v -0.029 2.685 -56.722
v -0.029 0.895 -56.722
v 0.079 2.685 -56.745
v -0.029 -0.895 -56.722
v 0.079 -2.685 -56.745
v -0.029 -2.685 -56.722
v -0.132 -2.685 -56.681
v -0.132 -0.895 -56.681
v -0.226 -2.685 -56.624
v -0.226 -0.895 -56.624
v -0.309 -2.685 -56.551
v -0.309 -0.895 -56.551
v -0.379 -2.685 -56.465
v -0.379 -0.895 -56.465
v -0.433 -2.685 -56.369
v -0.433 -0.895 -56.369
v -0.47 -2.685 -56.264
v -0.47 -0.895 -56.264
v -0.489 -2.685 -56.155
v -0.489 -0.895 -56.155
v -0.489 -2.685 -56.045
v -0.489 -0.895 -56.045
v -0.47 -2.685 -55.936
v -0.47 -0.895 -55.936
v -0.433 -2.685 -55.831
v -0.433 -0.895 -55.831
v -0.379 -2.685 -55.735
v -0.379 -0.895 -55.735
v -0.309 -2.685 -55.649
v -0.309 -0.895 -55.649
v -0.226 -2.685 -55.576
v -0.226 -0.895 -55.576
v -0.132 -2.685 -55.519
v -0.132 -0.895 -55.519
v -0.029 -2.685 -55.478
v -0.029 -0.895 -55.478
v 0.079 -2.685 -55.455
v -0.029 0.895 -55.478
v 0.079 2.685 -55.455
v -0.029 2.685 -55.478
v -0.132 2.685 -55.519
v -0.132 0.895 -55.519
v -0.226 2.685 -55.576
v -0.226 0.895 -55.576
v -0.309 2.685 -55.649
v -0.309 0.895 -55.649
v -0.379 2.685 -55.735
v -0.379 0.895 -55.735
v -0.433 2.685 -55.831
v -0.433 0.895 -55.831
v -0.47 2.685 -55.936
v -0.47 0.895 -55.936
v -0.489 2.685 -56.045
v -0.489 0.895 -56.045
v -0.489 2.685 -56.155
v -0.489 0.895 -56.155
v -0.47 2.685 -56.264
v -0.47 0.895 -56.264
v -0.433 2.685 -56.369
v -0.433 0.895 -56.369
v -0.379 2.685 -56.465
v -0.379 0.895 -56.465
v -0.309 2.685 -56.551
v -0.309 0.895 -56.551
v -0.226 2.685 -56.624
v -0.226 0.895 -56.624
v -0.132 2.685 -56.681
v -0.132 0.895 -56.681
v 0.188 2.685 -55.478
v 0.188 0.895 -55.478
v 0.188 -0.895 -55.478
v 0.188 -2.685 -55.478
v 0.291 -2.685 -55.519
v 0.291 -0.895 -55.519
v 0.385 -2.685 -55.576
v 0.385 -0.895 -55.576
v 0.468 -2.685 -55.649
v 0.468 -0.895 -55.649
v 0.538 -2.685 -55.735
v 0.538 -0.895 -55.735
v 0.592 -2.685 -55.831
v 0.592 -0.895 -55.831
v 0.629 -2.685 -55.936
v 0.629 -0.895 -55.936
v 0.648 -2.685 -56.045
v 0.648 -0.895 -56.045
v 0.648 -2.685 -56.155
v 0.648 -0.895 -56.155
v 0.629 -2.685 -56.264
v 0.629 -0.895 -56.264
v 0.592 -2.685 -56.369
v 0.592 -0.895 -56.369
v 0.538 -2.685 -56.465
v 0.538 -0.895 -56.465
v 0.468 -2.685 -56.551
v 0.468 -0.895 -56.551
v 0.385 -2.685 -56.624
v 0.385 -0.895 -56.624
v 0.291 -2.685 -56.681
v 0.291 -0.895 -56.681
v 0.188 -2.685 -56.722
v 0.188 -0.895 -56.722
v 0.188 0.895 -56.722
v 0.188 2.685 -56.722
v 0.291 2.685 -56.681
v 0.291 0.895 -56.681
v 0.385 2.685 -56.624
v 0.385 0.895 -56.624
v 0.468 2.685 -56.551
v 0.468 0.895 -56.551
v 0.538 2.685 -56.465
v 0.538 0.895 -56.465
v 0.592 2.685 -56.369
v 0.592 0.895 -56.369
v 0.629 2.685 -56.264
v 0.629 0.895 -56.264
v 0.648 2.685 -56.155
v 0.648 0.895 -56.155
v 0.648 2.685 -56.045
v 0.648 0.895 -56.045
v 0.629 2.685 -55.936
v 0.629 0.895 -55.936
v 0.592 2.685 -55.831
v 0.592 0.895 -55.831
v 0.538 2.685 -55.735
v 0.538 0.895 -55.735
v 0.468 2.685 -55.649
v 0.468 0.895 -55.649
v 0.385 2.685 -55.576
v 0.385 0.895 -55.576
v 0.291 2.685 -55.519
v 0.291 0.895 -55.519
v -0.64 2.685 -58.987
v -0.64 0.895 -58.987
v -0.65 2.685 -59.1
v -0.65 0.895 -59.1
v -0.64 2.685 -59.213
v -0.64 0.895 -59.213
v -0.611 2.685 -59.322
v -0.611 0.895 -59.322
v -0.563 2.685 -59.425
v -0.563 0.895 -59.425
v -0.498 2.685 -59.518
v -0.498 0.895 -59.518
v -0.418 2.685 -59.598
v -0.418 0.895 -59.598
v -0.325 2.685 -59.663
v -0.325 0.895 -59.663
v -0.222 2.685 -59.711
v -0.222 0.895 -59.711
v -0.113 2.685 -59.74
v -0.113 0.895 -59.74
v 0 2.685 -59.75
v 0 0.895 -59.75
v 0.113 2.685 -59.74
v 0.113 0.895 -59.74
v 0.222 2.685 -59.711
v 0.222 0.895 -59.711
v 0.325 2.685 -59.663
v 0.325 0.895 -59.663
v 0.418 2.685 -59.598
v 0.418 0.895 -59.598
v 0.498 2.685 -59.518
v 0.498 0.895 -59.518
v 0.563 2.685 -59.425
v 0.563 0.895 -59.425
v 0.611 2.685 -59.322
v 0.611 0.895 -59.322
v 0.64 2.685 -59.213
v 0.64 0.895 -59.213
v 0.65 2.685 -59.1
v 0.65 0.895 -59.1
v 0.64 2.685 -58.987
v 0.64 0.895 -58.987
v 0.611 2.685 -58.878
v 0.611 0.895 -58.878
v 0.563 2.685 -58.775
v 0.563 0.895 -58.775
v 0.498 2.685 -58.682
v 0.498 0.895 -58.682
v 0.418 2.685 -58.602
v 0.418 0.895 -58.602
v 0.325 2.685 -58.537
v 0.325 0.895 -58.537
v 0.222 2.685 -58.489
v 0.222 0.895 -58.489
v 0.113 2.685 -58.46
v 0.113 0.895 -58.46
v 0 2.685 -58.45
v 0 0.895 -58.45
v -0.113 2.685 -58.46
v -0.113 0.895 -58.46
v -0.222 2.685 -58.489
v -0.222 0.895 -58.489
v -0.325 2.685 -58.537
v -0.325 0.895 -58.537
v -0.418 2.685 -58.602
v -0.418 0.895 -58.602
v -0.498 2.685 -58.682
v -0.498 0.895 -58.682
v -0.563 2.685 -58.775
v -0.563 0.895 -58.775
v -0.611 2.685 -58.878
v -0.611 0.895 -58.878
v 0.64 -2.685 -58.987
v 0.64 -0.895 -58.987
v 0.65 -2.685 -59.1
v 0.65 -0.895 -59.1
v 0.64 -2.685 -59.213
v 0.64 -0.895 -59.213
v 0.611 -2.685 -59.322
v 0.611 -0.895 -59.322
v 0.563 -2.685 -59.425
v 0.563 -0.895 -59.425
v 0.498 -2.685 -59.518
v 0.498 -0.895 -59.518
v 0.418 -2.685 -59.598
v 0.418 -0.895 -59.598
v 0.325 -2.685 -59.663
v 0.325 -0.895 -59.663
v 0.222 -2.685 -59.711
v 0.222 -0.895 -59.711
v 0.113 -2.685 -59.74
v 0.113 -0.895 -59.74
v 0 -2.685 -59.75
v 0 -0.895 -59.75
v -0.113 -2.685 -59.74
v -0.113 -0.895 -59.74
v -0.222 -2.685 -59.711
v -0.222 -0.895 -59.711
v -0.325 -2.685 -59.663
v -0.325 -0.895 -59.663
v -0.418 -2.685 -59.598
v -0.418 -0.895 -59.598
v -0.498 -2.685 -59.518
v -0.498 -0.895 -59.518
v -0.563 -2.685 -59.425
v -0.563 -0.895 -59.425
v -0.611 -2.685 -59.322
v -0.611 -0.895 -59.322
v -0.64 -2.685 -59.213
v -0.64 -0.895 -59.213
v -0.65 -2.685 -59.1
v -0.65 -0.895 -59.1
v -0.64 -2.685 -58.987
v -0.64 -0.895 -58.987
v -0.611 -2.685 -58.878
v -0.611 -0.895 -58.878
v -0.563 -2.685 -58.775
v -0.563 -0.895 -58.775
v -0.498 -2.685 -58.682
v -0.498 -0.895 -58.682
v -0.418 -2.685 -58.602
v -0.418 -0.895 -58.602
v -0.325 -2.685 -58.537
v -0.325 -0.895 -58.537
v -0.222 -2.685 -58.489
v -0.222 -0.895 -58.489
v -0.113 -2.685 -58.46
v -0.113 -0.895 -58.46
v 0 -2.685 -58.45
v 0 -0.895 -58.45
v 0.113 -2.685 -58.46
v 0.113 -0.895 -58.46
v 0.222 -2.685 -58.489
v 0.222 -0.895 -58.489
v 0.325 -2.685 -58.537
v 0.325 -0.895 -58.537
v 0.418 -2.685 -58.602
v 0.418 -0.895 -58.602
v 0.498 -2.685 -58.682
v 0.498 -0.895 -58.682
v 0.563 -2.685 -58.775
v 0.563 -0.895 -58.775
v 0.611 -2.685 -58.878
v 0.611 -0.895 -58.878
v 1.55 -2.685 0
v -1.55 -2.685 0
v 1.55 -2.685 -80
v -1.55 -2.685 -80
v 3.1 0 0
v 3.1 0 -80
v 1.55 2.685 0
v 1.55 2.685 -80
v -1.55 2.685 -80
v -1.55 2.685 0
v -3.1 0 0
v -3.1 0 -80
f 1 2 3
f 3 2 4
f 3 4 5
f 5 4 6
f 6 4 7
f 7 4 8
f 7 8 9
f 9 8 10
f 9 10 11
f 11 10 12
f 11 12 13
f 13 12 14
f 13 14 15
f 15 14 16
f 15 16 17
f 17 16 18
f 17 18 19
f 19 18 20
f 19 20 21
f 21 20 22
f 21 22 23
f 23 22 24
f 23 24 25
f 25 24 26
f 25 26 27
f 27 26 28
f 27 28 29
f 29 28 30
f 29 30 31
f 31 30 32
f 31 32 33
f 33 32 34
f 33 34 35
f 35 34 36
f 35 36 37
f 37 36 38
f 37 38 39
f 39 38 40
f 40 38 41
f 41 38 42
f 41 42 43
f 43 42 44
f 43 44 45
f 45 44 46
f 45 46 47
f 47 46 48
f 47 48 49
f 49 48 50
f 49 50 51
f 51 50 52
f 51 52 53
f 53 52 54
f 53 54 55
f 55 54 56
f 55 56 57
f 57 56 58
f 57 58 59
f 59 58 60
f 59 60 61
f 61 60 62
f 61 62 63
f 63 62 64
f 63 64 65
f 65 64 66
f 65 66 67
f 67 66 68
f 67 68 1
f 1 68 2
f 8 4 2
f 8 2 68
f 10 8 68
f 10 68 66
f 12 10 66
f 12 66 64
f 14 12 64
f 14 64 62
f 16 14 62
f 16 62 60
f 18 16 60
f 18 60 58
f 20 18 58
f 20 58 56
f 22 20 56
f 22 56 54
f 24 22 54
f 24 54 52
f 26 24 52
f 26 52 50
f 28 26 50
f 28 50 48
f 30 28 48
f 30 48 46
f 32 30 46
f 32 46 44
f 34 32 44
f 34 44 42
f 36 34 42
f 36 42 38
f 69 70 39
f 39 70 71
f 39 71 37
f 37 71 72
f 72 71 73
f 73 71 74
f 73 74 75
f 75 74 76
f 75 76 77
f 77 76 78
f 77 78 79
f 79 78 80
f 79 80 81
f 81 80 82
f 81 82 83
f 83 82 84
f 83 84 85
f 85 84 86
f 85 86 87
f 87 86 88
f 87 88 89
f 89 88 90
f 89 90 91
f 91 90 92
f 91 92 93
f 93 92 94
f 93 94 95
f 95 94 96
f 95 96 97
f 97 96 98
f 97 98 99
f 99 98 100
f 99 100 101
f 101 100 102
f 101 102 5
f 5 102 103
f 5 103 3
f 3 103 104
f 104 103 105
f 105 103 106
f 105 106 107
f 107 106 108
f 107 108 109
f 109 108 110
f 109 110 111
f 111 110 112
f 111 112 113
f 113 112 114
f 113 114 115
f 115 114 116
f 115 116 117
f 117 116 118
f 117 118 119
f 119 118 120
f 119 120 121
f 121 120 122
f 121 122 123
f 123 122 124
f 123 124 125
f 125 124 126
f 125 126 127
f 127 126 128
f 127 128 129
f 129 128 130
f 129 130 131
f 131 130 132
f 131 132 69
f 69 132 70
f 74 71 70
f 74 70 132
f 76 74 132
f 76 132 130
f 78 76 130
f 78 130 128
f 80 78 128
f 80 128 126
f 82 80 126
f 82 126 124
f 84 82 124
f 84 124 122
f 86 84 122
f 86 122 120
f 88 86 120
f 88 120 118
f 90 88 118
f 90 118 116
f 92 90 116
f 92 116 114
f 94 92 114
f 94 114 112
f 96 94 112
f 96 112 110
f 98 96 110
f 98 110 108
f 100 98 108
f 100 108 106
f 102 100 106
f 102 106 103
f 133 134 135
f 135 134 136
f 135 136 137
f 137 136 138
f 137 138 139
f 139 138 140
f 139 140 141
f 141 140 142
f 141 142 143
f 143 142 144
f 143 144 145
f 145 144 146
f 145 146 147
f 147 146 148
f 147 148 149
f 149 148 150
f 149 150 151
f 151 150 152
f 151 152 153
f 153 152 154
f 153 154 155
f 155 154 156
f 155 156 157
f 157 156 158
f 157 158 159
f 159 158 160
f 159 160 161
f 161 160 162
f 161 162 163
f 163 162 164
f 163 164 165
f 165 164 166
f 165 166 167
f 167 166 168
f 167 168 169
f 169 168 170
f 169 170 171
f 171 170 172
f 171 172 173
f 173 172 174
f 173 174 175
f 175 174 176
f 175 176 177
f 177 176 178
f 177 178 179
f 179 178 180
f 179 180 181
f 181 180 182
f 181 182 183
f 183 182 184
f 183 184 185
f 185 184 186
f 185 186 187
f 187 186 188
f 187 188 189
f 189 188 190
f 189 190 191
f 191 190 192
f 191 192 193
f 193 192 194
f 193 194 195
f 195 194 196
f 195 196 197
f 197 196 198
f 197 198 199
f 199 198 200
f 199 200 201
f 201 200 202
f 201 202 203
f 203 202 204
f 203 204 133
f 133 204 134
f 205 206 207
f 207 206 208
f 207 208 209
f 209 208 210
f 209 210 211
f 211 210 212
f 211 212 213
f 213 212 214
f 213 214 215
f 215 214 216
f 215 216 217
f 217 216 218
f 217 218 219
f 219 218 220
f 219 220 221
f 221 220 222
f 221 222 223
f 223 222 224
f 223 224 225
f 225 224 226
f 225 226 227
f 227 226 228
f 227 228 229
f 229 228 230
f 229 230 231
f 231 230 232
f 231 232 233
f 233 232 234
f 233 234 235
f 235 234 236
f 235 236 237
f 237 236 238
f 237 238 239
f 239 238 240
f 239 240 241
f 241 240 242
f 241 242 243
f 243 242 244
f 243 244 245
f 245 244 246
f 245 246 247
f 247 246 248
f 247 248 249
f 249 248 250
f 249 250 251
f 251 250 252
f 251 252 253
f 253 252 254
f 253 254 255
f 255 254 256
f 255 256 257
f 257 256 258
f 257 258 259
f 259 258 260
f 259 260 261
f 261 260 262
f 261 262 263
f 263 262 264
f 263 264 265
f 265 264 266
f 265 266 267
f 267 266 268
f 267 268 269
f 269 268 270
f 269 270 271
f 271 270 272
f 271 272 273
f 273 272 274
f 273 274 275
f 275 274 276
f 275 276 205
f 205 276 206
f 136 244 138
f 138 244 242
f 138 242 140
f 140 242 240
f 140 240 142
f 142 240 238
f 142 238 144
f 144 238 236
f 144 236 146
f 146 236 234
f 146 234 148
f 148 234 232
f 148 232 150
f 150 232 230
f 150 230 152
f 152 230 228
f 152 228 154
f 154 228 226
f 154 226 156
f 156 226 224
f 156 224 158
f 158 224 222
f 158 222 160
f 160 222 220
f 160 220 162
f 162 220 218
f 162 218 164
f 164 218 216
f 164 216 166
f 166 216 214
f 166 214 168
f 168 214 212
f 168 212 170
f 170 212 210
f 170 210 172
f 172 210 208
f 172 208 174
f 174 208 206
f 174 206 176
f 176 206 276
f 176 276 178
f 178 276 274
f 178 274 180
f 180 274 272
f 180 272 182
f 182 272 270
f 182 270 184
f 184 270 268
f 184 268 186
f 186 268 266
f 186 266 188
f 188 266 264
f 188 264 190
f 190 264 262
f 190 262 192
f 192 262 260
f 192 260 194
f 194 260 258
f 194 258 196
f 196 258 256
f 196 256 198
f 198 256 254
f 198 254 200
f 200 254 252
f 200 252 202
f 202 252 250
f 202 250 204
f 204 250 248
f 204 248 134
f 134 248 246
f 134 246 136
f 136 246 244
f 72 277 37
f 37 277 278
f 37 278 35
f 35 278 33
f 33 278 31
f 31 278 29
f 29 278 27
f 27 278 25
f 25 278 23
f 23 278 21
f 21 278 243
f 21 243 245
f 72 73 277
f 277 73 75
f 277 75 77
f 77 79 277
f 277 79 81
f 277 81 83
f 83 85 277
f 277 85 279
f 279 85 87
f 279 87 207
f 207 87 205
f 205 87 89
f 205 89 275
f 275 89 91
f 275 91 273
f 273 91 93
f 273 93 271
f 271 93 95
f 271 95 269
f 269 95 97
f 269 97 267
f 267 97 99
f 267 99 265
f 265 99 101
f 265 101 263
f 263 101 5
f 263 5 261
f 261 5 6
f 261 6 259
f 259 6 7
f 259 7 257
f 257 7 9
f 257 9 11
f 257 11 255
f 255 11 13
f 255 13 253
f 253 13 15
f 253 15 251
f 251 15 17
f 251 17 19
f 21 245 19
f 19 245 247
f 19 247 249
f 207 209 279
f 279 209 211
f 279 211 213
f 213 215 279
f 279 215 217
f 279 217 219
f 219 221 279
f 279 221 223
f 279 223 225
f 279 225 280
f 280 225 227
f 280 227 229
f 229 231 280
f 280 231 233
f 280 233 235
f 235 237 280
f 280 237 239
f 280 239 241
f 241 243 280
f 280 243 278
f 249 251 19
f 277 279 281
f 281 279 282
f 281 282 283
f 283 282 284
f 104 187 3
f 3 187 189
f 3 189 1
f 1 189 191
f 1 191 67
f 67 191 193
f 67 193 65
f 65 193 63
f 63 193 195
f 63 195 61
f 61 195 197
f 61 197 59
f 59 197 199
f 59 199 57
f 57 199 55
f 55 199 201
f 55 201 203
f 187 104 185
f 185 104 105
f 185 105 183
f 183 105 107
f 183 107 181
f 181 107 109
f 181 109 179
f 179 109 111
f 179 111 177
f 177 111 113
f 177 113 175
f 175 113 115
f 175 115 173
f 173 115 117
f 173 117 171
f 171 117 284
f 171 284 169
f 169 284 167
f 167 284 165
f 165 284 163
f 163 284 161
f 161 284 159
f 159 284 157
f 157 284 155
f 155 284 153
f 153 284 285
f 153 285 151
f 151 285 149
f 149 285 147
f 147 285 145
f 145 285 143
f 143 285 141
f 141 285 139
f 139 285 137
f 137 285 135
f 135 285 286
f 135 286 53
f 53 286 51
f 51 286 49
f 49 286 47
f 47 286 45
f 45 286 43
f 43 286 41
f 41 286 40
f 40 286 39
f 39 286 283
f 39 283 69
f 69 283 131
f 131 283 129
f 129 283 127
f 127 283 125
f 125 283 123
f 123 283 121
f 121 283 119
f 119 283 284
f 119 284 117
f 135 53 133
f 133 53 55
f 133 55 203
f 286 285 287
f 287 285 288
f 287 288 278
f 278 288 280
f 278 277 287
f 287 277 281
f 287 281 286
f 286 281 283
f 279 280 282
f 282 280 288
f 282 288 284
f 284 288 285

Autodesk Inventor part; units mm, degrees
ref_plane "YZ Plane" through (0, 0, 0) normal (1, 0, 0) x (0, 1, 0)
ref_plane "XZ Plane" through (0, 0, 0) normal (0, 1, 0) x (-1, 0, 0)
ref_plane "XY Plane" through (0, 0, 0) normal (0, 0, 1) x (1, 0, 0)
sketch "Sketch1" plane through (0, 0, 0) normal (0, 0, 1) x (1, 0, 0)
  line L0 (0, 0) -> (3.1, 0) construction
  circle A0 centre (0, 0) radius 7.5 projected
  line L1 (0, 0) -> (1.55, 2.6847) construction
  line L2 (0, 0) -> (-1.55, 2.6847) construction
  line L3 (0, 0) -> (-3.1, 0) construction
  line L4 (0, 0) -> (-1.55, -2.6847) construction
  line L5 (0, 0) -> (1.55, -2.6847) construction
  line L6 (-1.55, 2.6847) -> (1.55, 2.6847)
  line L7 (1.55, 2.6847) -> (3.1, 0)
  line L8 (3.1, 0) -> (1.55, -2.6847)
  line L9 (1.55, -2.6847) -> (-1.55, -2.6847)
  line L10 (-1.55, -2.6847) -> (-3.1, 0)
  line L11 (-3.1, 0) -> (-1.55, 2.6847)
  line L12 (-1.7809, 3.0847) -> (1.7809, 3.0847) projected
  dimension "d0" = 3.1
  dimension "d3" = 360
extrude "Extrusion1" add sketch "Sketch1" against normal blind 80 contours L6 L7 L8 L9 L10 L11
sketch "Sketch2" plane through (-1.55, -2.6847, 0) normal (0, -1, 0) x (1, 0, 0)
  line L0 (0, 0) -> (0, -80) projected
  line L1 (3.1, 0) -> (3.1, -80) projected
  line L2 (106.9037, -80.1) -> (-63.0931, -80.1) projected
  ellipse E0 centre (1.709, -56.1) end of major axis (1.709, -55.45) minor radius 0.65 projected
  line L3 (1.709, -56.1) -> (-0.1699, -56.1) construction
  circle A0 centre (1.55, -56.1) radius 0.65
  line L4 (0, 0) -> (3.1, 0) projected
  circle A1 centre (1.55, -59.1) radius 0.65
  point P0 (1.55, 0)
  point P1 (1.55, 0)
  point P2 (1.6295, -55.4549)
  point P3 (1.6295, -56.7451)
  dimension "d7" = 1.3
  dimension "d8" = 56.1
  dimension "d9" = 3
extrude "Extrusion2" cut sketch "Sketch2" against normal blind 10 contours E0 A0 | A1 picked at (1.8134, -56.0482)
properties part number "eje2_n"
